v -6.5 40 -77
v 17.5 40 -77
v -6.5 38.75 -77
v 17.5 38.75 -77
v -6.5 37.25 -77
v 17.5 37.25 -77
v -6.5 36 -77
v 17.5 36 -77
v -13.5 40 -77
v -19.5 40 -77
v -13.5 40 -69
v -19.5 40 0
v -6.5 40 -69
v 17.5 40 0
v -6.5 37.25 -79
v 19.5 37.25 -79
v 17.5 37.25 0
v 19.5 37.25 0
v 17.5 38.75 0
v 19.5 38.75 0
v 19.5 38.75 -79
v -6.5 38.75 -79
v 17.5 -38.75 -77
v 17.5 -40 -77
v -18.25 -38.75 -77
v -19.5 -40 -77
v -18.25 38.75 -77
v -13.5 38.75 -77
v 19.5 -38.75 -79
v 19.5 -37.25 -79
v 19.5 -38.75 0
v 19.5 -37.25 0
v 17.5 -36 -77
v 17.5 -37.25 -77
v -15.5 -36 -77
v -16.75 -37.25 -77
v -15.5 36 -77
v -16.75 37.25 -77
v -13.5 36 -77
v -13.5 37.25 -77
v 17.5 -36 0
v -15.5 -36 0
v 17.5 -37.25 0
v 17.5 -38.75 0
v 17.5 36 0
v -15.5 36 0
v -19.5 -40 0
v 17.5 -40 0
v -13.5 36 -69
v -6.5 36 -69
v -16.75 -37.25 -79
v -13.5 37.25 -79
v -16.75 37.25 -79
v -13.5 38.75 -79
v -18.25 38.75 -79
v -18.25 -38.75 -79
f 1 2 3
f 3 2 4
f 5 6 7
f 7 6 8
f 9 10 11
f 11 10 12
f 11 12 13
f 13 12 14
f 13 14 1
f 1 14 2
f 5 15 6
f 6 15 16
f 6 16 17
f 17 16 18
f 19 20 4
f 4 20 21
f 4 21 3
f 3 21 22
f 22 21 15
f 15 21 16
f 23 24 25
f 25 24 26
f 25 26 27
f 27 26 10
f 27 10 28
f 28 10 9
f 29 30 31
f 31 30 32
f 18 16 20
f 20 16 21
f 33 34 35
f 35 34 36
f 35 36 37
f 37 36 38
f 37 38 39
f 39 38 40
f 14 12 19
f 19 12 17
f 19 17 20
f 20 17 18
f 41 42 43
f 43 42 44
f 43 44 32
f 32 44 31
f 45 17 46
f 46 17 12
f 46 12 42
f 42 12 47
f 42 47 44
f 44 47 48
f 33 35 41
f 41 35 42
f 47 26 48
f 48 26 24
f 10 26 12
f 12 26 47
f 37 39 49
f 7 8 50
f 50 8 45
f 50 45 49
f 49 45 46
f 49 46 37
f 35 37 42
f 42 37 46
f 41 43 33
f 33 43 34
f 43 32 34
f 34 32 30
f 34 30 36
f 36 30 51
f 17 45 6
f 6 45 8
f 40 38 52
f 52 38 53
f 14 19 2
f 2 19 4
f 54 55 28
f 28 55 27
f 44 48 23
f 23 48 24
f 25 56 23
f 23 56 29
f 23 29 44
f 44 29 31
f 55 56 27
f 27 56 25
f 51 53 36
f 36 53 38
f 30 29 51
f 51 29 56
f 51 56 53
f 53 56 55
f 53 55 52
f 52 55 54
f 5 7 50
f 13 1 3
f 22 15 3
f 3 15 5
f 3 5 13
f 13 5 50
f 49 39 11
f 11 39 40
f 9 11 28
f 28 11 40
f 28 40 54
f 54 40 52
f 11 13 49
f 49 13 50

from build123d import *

# Parameters (mm, degrees)
Y_KSEKLIK_EKSTR_ZYON2_DEPTH = 77
IZIM3_W                     = 2
IZIM3_H                     = 1.25
KES_EKSTR_ZYON1_DEPTH       = 77
IZIM6_W                     = 1.5
IZIM6_H                     = 74.5
Y_KSEKLIK_EKSTR_ZYON3_DEPTH = 2
IZIM7_W                     = 7
IZIM7_H                     = 10
KES_EKSTR_ZYON2_DEPTH       = 5


with BuildPart() as part:
    # Çizim2 → Yükseklik-Ekstrüzyon2 (new body)
    with BuildSketch(Plane.XY):
        Polygon((19.5, 40), (-19.5, 40), (-19.5, -40), (19.5, -40), (19.5, -36), (-15.5, -36), (-15.5, 36), (19.5, 36), align=None)
    extrude(amount=-Y_KSEKLIK_EKSTR_ZYON2_DEPTH)

    # Çizim3 → Kes-Ekstrüzyon1 (cut)
    with BuildSketch(Plane(origin=(0, 0, -77), x_dir=(-1, 0, 0), z_dir=(0, 0, -1))):
        with Locations((-18.5, -36.625)):
            Rectangle(IZIM3_W, IZIM3_H)
        with Locations((-18.5, -39.375)):
            Rectangle(IZIM3_W, IZIM3_H)
        with Locations((-18.5, 39.375)):
            Rectangle(IZIM3_W, IZIM3_H)
        with Locations((-18.5, 36.625)):
            Rectangle(IZIM3_W, IZIM3_H)
    extrude(amount=-KES_EKSTR_ZYON1_DEPTH, mode=Mode.SUBTRACT)

    # Çizim6 → Yükseklik-Ekstrüzyon3 (add)
    with BuildSketch(Plane(origin=(0, 0, -77), x_dir=(-1, 0, 0), z_dir=(0, 0, -1))):
        Polygon((-17.5, 38.75), (-19.5, 38.75), (-19.5, 37.25), (-17.5, 37.25), (16.75, 37.25), (18.25, 37.25), (18.25, 38.75), align=None)
        with Locations((17.5, 0)):
            Rectangle(IZIM6_W, IZIM6_H)
        Polygon((18.25, -38.75), (18.25, -37.25), (16.75, -37.25), (-17.5, -37.25), (-19.5, -37.25), (-19.5, -38.75), (-17.5, -38.75), align=None)
    extrude(amount=Y_KSEKLIK_EKSTR_ZYON3_DEPTH)

    # Çizim7 → Kes-Ekstrüzyon2 (cut)
    with BuildSketch(Plane(origin=(0, 40, 0), x_dir=(1, 0, 0), z_dir=(0, 1, 0))):
        with Locations((-10, 74)):
            Rectangle(IZIM7_W, IZIM7_H)
    extrude(amount=-KES_EKSTR_ZYON2_DEPTH, mode=Mode.SUBTRACT)


solid = part.part
